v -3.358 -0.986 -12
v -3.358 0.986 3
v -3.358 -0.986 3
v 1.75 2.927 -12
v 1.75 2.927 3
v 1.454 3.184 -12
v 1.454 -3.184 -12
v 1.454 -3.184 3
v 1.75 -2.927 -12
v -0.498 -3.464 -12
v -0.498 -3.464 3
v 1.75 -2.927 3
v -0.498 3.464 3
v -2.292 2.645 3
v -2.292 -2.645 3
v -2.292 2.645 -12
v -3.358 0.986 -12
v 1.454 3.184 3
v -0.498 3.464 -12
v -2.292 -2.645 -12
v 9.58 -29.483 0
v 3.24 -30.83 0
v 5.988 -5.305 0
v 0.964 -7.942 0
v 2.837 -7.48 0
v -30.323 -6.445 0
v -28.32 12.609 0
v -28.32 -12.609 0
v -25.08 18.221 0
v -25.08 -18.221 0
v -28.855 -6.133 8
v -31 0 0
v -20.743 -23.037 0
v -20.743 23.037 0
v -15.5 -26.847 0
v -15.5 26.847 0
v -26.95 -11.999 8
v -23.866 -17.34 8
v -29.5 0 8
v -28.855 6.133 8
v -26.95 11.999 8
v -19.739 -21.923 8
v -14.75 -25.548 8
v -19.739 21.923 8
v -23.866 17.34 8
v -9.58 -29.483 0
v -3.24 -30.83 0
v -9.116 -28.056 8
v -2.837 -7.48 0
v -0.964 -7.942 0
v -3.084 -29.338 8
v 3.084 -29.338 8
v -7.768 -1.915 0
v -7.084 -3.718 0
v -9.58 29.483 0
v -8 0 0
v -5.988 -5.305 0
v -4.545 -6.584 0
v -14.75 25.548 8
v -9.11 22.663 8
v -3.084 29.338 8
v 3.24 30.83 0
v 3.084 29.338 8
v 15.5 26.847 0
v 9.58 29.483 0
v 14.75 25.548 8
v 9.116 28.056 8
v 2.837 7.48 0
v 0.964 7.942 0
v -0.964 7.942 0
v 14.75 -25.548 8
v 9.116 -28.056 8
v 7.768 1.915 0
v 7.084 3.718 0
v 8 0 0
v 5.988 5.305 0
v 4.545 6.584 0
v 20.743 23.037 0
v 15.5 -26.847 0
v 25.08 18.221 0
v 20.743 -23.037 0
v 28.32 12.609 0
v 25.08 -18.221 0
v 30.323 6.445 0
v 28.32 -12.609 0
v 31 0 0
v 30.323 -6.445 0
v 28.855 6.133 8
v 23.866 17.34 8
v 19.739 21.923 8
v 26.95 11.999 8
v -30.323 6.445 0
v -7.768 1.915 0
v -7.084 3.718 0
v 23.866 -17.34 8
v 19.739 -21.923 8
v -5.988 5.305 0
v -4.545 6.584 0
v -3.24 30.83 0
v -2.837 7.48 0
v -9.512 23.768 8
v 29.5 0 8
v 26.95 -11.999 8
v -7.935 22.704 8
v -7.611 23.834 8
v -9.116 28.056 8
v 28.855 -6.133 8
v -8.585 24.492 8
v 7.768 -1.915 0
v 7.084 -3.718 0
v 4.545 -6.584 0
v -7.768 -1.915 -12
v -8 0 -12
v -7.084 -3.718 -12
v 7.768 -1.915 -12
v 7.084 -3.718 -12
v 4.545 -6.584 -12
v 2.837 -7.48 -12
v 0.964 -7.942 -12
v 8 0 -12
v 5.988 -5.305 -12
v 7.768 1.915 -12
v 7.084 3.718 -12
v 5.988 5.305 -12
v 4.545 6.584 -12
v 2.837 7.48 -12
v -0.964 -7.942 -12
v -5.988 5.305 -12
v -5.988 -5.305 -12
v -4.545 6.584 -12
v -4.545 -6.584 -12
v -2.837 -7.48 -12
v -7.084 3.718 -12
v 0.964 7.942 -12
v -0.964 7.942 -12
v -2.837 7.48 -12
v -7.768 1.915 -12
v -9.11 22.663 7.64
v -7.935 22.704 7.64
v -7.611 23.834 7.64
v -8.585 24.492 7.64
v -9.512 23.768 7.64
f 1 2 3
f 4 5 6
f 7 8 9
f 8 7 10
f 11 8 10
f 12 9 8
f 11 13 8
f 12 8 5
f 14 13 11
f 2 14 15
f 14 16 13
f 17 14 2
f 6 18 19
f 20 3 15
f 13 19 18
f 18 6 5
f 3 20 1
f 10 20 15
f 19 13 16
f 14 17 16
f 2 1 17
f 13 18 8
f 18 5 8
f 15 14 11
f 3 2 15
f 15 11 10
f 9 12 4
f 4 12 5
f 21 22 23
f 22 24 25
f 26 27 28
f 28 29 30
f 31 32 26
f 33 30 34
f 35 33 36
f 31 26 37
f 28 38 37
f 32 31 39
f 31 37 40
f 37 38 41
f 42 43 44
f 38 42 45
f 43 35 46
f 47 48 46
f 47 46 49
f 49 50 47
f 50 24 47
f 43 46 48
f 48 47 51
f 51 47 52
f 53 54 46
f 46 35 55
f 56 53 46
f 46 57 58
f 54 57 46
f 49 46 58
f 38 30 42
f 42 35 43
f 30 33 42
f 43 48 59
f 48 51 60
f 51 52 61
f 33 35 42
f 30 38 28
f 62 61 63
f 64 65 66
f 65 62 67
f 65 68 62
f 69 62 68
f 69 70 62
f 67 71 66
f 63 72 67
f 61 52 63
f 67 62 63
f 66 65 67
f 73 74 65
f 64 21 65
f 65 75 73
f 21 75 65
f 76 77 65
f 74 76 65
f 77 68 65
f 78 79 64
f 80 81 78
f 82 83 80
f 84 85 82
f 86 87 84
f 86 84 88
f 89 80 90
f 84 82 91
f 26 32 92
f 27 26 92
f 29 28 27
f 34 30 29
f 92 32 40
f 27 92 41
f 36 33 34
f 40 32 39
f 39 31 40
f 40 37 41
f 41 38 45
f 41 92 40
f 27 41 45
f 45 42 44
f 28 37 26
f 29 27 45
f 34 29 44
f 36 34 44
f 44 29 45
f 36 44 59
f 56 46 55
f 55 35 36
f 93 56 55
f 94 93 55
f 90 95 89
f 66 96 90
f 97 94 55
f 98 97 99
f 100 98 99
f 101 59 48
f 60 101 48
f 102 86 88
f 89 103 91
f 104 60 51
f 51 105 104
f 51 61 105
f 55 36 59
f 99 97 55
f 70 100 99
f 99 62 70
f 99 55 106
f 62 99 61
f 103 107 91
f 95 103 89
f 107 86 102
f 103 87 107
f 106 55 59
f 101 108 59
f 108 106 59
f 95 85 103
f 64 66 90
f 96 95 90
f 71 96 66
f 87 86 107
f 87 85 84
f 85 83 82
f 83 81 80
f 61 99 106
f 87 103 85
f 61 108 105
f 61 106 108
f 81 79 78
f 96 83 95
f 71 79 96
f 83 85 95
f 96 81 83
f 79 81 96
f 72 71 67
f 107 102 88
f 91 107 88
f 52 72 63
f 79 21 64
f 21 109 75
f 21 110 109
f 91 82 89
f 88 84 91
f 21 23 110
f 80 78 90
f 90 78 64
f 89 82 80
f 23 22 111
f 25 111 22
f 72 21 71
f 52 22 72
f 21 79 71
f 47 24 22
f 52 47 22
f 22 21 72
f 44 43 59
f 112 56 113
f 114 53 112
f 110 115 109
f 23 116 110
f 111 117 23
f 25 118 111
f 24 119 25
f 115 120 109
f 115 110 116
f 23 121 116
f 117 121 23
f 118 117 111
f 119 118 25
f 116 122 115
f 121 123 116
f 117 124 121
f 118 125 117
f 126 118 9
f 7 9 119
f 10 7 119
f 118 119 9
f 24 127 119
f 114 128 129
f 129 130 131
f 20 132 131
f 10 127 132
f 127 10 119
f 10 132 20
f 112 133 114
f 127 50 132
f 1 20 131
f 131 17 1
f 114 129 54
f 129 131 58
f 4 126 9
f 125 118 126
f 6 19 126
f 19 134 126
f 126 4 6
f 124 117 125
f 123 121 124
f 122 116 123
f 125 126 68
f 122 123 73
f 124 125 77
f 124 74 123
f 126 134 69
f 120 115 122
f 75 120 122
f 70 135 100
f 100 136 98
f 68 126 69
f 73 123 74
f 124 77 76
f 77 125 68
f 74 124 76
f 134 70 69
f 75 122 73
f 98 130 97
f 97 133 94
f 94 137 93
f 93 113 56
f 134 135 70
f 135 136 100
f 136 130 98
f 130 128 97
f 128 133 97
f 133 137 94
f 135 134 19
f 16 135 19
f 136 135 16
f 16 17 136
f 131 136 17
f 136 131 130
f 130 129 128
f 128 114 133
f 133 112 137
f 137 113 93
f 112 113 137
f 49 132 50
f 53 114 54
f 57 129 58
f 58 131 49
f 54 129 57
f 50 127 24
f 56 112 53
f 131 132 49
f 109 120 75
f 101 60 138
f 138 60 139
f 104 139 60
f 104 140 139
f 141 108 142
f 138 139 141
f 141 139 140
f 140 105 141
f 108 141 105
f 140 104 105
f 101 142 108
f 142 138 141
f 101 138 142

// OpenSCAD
module axel(d, h, cutout_offset=0) {
        cutout_offset = cutout_offset > 0 ? cutout_offset : d/4;

        difference() {
                cylinder(d=d, h=h);
                translate([cutout_offset, -d/2, -1/2])
                        cube([d, d, h+1]);
        }
}


module knob(od, id, oh, ih, od2 = 0) {
        od2 = od2 > 0 ? od2 : od;
        cylinder(d1=od, d2 = od2, h=oh);
        translate([0, 0, -ih])
                cylinder(d=id, h=ih);
}

difference() {
        knob(62, 16, 8, 12, 59);
        translate([0, 0, -13])
                axel(7, 16, 1.75);
        // cut a small dot on the top of the knob to act as an indicator
        rotate([0, 0, 20])
                translate([0, 25, 8-0.36])
                cylinder(d=2, h=0.5);
}
